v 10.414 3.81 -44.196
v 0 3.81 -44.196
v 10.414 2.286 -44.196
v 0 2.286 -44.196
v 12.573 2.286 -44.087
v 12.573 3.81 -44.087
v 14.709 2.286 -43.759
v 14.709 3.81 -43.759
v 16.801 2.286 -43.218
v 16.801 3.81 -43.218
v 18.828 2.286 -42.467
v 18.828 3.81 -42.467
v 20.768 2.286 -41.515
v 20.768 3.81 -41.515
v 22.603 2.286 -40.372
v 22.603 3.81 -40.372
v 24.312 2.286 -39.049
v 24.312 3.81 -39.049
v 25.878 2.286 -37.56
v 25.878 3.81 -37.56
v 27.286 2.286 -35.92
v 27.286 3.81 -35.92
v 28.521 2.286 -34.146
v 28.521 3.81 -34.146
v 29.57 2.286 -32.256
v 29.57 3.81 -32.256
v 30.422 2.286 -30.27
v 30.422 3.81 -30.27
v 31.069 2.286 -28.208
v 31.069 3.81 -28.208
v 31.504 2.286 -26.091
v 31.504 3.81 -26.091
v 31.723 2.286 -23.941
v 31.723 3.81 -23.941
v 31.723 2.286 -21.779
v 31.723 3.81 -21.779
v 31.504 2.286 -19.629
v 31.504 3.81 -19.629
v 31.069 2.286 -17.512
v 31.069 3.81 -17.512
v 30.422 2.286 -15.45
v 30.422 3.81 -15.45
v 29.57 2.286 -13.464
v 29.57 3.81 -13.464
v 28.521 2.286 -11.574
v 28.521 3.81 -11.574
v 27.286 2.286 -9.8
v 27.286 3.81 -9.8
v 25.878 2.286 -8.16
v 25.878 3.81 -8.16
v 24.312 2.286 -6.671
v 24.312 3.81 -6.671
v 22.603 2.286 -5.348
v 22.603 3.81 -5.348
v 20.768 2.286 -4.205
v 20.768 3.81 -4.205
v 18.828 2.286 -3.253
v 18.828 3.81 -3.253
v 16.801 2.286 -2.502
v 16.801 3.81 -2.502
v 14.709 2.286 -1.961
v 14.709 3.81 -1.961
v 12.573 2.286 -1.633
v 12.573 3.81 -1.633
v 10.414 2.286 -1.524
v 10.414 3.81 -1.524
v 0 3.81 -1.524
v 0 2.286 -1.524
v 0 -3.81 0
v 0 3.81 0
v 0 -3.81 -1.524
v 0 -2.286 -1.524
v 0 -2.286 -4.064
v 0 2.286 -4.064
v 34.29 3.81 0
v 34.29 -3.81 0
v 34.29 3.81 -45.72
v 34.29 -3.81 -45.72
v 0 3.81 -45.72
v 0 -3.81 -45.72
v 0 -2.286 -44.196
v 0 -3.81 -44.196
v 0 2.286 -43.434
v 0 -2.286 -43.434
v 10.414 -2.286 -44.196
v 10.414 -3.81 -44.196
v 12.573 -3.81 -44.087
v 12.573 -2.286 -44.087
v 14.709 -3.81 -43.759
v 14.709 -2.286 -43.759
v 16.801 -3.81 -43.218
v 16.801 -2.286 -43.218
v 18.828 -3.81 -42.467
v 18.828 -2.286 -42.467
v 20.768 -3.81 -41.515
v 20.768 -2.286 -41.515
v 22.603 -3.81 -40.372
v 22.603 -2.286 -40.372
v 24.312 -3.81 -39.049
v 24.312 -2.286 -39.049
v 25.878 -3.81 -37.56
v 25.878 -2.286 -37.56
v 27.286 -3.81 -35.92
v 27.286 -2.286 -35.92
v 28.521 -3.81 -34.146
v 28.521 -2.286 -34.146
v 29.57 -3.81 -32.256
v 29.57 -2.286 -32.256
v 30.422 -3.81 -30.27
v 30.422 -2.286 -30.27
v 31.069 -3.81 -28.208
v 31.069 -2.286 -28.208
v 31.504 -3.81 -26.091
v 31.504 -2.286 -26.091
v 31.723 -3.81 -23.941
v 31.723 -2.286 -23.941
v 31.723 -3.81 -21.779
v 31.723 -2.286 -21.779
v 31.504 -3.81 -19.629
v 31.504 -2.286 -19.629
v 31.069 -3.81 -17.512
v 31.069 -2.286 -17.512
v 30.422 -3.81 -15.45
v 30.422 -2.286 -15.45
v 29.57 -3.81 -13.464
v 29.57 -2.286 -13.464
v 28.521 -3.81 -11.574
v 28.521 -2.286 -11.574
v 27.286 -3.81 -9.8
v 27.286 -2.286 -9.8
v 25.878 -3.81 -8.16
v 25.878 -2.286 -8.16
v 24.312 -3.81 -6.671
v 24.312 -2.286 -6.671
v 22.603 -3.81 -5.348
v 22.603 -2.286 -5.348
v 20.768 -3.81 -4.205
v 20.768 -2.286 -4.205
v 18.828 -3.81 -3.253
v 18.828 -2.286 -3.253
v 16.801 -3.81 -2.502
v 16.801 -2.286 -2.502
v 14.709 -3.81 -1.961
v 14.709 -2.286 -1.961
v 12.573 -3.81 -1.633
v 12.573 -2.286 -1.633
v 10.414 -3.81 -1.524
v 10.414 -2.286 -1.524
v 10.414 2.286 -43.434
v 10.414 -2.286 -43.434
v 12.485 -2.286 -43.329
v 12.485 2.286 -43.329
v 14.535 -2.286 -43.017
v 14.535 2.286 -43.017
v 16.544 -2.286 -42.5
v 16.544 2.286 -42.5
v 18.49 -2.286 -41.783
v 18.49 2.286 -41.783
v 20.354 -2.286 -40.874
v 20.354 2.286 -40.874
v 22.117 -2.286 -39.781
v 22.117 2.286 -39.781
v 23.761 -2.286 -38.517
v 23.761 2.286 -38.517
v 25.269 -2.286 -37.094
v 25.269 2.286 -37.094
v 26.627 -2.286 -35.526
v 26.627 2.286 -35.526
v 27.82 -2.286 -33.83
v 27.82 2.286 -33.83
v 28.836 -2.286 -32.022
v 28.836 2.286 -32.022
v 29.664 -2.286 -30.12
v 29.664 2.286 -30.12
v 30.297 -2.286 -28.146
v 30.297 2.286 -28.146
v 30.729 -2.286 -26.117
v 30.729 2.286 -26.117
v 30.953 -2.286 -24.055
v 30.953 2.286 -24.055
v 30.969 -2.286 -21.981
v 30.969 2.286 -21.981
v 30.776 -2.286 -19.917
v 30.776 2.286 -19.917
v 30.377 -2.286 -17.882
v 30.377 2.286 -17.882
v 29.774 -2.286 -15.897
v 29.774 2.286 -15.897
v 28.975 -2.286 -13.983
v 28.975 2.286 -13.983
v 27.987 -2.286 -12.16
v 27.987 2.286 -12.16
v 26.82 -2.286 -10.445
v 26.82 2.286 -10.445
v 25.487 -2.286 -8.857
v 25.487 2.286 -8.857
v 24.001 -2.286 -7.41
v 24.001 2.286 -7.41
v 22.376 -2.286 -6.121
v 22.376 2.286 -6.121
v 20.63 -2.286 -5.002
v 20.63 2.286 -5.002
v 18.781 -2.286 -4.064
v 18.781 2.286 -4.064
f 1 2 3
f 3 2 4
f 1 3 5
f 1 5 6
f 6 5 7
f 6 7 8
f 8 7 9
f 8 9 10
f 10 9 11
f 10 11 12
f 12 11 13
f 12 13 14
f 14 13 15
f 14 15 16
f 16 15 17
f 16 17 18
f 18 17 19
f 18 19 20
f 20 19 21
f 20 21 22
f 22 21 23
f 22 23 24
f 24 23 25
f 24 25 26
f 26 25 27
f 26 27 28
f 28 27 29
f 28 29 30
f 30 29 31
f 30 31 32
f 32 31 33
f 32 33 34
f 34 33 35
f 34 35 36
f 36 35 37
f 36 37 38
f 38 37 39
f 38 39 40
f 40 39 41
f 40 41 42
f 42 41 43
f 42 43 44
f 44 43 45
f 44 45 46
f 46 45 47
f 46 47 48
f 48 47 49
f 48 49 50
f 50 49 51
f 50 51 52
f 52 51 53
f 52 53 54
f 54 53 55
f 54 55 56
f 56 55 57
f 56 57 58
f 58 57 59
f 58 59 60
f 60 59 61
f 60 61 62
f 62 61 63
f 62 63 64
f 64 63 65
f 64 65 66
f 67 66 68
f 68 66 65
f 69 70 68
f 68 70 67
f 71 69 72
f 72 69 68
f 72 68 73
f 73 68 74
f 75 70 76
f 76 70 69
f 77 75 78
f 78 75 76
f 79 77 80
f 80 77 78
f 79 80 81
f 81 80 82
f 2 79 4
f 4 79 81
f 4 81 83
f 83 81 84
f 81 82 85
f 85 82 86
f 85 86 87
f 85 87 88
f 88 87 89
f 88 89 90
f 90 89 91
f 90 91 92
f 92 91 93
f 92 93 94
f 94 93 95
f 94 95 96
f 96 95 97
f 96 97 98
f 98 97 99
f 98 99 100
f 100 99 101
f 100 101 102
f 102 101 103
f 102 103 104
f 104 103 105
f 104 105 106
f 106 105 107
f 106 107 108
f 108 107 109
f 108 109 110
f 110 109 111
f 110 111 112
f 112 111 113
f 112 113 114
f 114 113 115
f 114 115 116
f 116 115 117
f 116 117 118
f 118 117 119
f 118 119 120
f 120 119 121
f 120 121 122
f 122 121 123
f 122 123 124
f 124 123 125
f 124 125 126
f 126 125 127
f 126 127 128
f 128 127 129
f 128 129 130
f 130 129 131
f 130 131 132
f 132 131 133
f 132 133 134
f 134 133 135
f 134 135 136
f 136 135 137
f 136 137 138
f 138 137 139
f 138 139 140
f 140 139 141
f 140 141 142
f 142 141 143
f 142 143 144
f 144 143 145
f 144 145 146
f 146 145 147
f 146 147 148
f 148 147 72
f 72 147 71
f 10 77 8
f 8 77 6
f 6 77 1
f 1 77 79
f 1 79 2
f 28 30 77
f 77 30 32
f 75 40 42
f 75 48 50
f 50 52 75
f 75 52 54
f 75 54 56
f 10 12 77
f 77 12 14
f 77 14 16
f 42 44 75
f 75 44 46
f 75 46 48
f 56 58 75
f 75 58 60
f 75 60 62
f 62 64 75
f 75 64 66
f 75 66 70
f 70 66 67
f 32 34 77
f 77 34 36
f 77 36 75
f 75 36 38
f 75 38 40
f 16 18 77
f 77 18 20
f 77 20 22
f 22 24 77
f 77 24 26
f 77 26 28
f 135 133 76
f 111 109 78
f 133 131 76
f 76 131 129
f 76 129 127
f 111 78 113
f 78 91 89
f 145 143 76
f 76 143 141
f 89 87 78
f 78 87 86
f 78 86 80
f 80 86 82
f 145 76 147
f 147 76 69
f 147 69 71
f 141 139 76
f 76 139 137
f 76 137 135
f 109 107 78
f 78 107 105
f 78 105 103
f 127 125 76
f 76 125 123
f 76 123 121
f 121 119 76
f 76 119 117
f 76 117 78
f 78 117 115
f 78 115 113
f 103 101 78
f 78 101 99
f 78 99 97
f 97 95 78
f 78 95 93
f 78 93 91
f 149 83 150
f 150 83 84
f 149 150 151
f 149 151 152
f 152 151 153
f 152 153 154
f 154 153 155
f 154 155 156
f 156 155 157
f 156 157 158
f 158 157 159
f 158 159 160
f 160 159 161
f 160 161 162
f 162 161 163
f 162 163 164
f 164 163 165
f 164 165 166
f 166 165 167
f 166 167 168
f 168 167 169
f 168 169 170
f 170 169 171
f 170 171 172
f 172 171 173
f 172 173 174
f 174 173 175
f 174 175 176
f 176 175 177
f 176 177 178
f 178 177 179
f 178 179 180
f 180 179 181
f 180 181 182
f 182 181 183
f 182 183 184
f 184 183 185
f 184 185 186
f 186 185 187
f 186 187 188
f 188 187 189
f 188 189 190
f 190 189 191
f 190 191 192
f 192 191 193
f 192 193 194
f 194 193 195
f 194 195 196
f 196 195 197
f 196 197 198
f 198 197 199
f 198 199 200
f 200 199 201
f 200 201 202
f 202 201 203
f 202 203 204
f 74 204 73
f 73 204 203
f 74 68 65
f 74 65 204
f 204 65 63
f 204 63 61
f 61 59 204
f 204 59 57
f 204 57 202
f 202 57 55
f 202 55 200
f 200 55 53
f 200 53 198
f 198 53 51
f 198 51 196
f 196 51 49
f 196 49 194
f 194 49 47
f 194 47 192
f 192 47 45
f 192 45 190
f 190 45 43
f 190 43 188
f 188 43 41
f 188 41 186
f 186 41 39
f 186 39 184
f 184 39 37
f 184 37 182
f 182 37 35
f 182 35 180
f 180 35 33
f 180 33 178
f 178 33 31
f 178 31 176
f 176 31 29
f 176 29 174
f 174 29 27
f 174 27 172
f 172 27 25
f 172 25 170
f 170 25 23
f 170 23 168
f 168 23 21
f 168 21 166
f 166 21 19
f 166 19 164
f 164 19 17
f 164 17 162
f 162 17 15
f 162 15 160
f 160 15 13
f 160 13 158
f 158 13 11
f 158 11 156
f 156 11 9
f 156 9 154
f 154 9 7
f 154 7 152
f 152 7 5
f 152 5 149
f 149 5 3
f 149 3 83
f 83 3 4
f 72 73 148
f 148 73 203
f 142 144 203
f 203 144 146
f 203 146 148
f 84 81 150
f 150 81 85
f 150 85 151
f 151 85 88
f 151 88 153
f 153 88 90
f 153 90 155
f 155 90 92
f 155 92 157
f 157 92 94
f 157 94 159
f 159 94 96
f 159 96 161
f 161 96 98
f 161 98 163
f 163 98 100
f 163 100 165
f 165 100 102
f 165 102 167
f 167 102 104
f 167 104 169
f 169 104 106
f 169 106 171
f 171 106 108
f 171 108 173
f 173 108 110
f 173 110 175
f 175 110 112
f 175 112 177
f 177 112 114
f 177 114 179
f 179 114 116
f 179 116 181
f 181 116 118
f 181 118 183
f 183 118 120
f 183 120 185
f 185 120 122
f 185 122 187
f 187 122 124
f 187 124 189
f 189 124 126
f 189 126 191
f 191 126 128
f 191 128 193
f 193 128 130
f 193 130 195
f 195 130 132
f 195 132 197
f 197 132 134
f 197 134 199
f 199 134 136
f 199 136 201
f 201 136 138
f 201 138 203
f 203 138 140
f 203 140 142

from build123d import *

# Parameters (mm, degrees)
BOSS_EXTRUDE1_DEPTH = 3.81
BOSS_EXTRUDE2_DEPTH = 2.286


with BuildPart() as part:
    # Sketch1 → Boss-Extrude1 (new, symmetric)
    with BuildSketch(Plane(origin=(0, 0, 0), x_dir=(1, 0, 0), z_dir=(0, 1, 0))):
        with BuildLine():
            Line((0, 45.72), (0, 44.196))
            Line((0, 44.196), (10.414, 44.196))
            ThreePointArc((10.414, 44.196), (31.75, 22.86), (10.414, 1.524))
            Line((10.414, 1.524), (0, 1.524))
            Line((0, 1.524), (0, 0))
            Line((0, 0), (34.29, 0))
            Line((34.29, 0), (34.29, 45.72))
            Line((34.29, 45.72), (0, 45.72))
        make_face()
    extrude(amount=BOSS_EXTRUDE1_DEPTH, both=True)

    # Sketch2 → Boss-Extrude2 (add, symmetric)
    with BuildSketch(Plane(origin=(0, 0, 0), x_dir=(1, 0, 0), z_dir=(0, 1, 0))):
        with BuildLine():
            Line((0, 4.064), (18.780591899, 4.064))
            ThreePointArc((18.780591899, 4.064), (30.538591673, 27.136714393), (10.414, 43.434))
            Line((10.414, 43.434), (0, 43.434))
            Line((0, 43.434), (0, 44.196))
            Line((0, 44.196), (10.414, 44.196))
            ThreePointArc((10.414, 44.196), (31.75, 22.86), (10.414, 1.524))
            Line((10.414, 1.524), (0, 1.524))
            Line((0, 1.524), (0, 4.064))
        make_face()
    extrude(amount=BOSS_EXTRUDE2_DEPTH, both=True)


solid = part.part
